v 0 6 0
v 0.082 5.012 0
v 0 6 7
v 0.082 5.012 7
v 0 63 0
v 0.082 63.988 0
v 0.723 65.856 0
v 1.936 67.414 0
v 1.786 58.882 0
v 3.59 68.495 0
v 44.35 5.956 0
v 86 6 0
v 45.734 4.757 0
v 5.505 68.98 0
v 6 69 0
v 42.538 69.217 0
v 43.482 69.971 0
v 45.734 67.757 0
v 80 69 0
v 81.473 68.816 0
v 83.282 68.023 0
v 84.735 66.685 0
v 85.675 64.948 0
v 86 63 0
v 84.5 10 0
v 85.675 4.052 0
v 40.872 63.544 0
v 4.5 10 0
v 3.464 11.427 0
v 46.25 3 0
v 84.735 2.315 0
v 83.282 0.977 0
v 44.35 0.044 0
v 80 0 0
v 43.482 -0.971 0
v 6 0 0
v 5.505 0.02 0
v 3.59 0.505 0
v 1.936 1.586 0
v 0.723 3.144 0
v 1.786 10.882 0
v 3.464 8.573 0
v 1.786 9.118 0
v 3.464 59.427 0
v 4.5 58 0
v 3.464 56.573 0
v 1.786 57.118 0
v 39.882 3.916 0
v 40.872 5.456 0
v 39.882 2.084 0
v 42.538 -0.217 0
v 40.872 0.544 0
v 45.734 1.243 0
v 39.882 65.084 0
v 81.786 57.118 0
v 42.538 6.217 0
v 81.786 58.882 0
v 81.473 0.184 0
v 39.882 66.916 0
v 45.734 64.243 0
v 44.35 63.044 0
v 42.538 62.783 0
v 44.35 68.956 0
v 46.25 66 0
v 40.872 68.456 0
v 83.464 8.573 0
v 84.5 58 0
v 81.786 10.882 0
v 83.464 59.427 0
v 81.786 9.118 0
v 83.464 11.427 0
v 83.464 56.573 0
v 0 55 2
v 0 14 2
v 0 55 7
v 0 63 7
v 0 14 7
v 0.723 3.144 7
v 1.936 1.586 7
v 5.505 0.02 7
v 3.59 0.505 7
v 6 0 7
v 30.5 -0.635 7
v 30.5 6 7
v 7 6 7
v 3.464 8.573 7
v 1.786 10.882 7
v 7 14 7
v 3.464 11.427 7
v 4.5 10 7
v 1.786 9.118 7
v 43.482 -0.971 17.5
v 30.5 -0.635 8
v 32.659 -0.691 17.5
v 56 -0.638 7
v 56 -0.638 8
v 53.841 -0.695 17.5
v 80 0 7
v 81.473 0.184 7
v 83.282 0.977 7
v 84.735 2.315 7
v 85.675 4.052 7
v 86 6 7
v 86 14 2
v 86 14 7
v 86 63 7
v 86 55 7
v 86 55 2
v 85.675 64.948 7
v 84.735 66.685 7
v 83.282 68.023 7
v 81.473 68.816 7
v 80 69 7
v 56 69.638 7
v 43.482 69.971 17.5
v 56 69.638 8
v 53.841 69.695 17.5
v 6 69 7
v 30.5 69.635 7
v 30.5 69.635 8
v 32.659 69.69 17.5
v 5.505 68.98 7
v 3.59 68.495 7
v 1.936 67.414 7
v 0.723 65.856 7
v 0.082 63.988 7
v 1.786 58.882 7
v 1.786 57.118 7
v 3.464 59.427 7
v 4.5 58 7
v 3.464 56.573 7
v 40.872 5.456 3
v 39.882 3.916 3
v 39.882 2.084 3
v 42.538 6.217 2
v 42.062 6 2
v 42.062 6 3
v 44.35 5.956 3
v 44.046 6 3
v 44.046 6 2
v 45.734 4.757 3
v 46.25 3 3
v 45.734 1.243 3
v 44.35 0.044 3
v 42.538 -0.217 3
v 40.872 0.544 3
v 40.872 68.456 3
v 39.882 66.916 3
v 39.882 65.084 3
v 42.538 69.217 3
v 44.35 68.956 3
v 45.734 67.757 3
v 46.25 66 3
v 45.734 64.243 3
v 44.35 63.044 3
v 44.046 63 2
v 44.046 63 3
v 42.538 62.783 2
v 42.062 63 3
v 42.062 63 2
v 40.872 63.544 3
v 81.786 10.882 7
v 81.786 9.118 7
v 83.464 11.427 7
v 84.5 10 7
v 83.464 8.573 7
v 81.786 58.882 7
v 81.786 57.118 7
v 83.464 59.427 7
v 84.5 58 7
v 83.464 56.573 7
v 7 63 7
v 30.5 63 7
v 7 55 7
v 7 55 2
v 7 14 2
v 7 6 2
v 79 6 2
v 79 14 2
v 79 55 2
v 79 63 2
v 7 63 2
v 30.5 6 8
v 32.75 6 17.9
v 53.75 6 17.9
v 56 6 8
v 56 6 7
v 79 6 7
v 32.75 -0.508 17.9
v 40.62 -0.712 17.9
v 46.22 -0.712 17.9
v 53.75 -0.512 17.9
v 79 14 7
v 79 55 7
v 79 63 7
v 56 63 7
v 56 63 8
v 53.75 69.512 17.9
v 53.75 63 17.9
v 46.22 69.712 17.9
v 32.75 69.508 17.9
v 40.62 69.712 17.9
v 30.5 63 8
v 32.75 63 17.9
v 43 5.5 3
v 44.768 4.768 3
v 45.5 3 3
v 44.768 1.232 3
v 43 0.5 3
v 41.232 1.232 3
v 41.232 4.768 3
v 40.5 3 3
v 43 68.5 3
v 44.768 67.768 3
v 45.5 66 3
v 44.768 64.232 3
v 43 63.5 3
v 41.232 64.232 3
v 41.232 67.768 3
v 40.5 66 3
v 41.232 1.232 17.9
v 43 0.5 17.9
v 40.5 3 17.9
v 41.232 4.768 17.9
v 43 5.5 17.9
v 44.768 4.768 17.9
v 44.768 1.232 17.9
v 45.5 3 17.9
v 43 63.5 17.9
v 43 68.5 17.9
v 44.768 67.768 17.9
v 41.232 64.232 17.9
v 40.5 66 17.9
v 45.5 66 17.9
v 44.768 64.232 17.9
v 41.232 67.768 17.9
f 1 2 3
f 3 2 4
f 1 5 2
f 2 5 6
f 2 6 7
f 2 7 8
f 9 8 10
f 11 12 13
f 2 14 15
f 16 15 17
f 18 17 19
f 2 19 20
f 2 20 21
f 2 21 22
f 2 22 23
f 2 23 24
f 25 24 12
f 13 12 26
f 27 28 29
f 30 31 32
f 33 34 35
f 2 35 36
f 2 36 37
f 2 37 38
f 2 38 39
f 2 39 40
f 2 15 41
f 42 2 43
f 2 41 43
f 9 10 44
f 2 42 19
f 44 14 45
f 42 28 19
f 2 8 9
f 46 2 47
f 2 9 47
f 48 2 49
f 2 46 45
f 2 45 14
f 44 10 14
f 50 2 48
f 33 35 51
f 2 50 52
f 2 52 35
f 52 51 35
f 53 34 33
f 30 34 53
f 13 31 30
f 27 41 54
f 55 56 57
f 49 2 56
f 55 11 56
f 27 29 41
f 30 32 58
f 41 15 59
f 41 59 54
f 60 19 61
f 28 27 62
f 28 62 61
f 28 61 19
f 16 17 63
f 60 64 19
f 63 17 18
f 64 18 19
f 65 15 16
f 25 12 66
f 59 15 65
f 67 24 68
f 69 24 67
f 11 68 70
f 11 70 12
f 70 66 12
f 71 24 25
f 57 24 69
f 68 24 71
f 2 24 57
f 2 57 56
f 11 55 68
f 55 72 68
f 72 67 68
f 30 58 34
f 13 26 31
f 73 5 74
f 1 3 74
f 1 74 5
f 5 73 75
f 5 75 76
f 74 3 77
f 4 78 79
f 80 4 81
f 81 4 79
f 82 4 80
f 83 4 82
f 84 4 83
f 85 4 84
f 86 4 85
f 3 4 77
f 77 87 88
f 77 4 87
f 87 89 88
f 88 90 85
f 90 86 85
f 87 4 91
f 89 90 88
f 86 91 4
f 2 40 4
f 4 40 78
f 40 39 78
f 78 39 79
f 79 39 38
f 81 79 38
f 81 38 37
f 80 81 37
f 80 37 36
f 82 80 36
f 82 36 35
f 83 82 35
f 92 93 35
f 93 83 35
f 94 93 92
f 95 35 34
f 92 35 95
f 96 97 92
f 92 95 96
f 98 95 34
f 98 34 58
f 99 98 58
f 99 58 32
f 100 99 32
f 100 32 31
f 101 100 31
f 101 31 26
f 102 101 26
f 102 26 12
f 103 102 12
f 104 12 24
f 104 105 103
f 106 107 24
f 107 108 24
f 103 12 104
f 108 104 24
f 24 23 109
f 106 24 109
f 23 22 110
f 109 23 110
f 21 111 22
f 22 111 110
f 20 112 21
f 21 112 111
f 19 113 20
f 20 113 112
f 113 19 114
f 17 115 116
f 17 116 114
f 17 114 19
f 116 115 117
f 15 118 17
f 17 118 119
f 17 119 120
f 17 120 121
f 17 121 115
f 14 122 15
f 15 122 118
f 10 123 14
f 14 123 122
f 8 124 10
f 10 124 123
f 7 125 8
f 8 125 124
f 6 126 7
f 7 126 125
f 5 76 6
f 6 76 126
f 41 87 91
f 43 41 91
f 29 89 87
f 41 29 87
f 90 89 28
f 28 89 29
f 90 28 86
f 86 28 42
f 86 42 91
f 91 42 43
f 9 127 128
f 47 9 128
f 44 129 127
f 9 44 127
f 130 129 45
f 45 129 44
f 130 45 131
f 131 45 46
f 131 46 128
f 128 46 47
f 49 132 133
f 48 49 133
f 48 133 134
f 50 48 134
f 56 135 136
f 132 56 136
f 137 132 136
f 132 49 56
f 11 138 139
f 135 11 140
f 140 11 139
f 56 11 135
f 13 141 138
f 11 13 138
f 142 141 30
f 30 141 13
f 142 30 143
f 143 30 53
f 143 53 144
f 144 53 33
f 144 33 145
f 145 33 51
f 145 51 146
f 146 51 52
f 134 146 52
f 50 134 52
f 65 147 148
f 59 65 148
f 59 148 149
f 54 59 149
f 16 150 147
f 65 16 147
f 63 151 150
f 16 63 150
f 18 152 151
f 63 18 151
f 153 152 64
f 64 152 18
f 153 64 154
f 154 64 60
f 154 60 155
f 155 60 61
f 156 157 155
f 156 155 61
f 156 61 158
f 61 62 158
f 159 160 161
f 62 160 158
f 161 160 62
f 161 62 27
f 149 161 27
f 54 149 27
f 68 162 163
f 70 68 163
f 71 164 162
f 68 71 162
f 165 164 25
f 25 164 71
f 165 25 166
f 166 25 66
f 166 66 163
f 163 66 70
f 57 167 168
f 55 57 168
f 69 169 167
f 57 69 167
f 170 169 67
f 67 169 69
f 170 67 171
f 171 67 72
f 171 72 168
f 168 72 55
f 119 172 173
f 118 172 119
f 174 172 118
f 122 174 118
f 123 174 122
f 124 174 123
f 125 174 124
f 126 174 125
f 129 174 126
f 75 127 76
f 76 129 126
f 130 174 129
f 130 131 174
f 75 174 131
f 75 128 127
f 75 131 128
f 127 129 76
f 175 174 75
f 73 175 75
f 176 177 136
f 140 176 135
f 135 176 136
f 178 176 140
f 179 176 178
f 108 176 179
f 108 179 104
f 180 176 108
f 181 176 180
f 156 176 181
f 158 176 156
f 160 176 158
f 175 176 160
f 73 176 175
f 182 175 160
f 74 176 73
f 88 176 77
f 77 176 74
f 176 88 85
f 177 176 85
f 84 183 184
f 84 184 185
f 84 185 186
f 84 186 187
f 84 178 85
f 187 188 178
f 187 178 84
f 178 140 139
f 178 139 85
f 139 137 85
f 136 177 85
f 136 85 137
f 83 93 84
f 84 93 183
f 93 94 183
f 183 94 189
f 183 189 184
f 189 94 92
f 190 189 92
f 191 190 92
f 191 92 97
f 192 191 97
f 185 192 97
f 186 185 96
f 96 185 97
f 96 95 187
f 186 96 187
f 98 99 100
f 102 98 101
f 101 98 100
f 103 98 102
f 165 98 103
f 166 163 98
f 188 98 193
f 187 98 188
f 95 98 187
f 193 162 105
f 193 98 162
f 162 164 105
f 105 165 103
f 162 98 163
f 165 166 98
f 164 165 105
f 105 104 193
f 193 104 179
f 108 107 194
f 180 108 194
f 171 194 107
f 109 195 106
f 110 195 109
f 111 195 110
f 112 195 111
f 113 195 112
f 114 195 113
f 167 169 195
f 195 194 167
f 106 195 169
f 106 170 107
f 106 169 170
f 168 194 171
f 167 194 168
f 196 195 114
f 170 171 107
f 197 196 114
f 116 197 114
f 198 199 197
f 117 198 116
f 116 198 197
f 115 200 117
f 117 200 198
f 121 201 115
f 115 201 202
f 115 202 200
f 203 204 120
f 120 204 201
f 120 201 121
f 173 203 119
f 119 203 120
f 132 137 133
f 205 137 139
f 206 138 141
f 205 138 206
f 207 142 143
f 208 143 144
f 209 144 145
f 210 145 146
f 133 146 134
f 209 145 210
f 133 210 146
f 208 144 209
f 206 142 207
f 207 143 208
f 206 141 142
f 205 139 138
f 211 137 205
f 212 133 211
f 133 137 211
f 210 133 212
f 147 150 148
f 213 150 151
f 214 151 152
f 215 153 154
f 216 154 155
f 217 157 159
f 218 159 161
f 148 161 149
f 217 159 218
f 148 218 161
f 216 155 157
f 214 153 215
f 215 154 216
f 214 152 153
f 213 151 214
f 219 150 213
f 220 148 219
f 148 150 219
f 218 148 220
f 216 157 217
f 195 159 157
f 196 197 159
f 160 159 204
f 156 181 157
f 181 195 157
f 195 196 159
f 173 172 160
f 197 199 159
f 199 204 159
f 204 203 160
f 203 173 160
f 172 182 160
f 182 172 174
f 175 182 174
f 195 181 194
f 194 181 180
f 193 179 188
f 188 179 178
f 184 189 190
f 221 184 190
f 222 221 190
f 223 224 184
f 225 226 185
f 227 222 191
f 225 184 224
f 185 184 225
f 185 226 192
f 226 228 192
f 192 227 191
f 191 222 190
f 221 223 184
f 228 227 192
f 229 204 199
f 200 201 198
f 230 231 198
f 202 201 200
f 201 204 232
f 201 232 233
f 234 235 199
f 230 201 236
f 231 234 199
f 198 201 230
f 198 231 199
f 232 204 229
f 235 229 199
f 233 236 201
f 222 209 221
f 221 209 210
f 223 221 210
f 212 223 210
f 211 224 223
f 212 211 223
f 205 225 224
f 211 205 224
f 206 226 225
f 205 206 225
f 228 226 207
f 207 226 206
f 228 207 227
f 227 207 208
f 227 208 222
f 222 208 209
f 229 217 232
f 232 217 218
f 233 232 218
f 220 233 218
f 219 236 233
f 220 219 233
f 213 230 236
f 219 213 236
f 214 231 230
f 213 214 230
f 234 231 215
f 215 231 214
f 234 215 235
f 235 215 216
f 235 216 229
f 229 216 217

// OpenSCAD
module unit_base() {
  wall_t = 2;
  total_h = 55+7*2;
  total_w = 86;

  base_t = 7;

  bottom_max = 23-base_t;
  bottom_min = 15-base_t;

  fan_side = 40;
  fan_hole_d = 3;
  fan_hole_offset = 3;

  fan_hole_delta = fan_side-2*fan_hole_offset;

  center_h = total_h/2;
  center_w = total_w/2;


  standoff_height=6;
  standoff_width=20+0.5;
  standoff_vert=10+0.5;

  corner_od = 12;
  corner_id = corner_od-wall_t;

  pad_d = 8;

  height = base_t+standoff_vert;


  difference() {

    hull() {
      union() {
	translate([corner_od/2, 0,0])
	  cube([total_w-corner_od, total_h, height]); 
	translate([0,corner_od/2,0])
	  cube([total_w, total_h-corner_od, height]);
      
	for (i = [0,1]) {
	  for (j = [0,1]) {
	    translate([corner_od/2+i*(total_w-corner_od),
		       corner_od/2+j*(total_h-corner_od),
		       0])
	      cylinder(r=corner_od/2, h=height);
	  }
	}
      } // end radii union


      translate([(total_w-standoff_width)/2, 0, base_t]) 
	hull() { 
	cube([standoff_width+0.5, total_h, standoff_vert+1.5]);
	translate([-2.5,0,0])
	cube([standoff_width+5.5, total_h, 1]);
      }

      // Add the sleeves for the assembly screws
      translate([total_w/2, total_h-standoff_height/2,0]) cylinder(h=height,r=8/2);
      translate([total_w/2, standoff_height/2, 0]) cylinder(h=height,r=8/2);
    } // hull with screw sleeves

    // ////////////////////////////////////////////////////
    // Now to remove a bunch of stuff

    // Remove the board's space under the hangers
    translate([-1, corner_od/2+pad_d, base_t-5]) cube([total_w+2, total_h-corner_od-2*pad_d, 5+100]);
    translate([pad_d-1, corner_od/2, base_t-5]) cube([total_w-2*pad_d+2, total_h-corner_od, 5+100]);


    // Remove some screw holes

    for (i = [0,1]) {
      for (j = [0,1]) {
	translate([pad_d/2-1+i*80,
		   corner_od/2+pad_d/2+j*48,
		   0])
	  cylinder(r=3/2, h=height+4);
      }
    }


    // cut out alignment doodads
    translate([0,-1,base_t]) difference() {
      cube([total_w+2, total_h+2, 50]);
      translate([(total_w-standoff_width)/2, -10, 0]) 


	hull() { 
	cube([standoff_width+0.5, total_h+20, standoff_vert+0.4]);
	translate([-2.25,-1]) cube([standoff_width+5, total_h+20, 1]);
      }
    }

    // cut holes for screws

    // binding screws
    // Add the sleeves for the assembly screws
    translate([total_w/2, total_h-standoff_height/2,0]) cylinder(h=50,r=5/2);
    translate([total_w/2, standoff_height/2, 0]) cylinder(h=50,r=5/2);

    translate([total_w/2, total_h-standoff_height/2,-1]) cylinder(h=3+1,r=6.5/2);
    translate([total_w/2, standoff_height/2, -1]) cylinder(h=3+1,r=6.5/2);


    

  } // difference()
}


//color([0,1,0,0.125])
unit_base();
